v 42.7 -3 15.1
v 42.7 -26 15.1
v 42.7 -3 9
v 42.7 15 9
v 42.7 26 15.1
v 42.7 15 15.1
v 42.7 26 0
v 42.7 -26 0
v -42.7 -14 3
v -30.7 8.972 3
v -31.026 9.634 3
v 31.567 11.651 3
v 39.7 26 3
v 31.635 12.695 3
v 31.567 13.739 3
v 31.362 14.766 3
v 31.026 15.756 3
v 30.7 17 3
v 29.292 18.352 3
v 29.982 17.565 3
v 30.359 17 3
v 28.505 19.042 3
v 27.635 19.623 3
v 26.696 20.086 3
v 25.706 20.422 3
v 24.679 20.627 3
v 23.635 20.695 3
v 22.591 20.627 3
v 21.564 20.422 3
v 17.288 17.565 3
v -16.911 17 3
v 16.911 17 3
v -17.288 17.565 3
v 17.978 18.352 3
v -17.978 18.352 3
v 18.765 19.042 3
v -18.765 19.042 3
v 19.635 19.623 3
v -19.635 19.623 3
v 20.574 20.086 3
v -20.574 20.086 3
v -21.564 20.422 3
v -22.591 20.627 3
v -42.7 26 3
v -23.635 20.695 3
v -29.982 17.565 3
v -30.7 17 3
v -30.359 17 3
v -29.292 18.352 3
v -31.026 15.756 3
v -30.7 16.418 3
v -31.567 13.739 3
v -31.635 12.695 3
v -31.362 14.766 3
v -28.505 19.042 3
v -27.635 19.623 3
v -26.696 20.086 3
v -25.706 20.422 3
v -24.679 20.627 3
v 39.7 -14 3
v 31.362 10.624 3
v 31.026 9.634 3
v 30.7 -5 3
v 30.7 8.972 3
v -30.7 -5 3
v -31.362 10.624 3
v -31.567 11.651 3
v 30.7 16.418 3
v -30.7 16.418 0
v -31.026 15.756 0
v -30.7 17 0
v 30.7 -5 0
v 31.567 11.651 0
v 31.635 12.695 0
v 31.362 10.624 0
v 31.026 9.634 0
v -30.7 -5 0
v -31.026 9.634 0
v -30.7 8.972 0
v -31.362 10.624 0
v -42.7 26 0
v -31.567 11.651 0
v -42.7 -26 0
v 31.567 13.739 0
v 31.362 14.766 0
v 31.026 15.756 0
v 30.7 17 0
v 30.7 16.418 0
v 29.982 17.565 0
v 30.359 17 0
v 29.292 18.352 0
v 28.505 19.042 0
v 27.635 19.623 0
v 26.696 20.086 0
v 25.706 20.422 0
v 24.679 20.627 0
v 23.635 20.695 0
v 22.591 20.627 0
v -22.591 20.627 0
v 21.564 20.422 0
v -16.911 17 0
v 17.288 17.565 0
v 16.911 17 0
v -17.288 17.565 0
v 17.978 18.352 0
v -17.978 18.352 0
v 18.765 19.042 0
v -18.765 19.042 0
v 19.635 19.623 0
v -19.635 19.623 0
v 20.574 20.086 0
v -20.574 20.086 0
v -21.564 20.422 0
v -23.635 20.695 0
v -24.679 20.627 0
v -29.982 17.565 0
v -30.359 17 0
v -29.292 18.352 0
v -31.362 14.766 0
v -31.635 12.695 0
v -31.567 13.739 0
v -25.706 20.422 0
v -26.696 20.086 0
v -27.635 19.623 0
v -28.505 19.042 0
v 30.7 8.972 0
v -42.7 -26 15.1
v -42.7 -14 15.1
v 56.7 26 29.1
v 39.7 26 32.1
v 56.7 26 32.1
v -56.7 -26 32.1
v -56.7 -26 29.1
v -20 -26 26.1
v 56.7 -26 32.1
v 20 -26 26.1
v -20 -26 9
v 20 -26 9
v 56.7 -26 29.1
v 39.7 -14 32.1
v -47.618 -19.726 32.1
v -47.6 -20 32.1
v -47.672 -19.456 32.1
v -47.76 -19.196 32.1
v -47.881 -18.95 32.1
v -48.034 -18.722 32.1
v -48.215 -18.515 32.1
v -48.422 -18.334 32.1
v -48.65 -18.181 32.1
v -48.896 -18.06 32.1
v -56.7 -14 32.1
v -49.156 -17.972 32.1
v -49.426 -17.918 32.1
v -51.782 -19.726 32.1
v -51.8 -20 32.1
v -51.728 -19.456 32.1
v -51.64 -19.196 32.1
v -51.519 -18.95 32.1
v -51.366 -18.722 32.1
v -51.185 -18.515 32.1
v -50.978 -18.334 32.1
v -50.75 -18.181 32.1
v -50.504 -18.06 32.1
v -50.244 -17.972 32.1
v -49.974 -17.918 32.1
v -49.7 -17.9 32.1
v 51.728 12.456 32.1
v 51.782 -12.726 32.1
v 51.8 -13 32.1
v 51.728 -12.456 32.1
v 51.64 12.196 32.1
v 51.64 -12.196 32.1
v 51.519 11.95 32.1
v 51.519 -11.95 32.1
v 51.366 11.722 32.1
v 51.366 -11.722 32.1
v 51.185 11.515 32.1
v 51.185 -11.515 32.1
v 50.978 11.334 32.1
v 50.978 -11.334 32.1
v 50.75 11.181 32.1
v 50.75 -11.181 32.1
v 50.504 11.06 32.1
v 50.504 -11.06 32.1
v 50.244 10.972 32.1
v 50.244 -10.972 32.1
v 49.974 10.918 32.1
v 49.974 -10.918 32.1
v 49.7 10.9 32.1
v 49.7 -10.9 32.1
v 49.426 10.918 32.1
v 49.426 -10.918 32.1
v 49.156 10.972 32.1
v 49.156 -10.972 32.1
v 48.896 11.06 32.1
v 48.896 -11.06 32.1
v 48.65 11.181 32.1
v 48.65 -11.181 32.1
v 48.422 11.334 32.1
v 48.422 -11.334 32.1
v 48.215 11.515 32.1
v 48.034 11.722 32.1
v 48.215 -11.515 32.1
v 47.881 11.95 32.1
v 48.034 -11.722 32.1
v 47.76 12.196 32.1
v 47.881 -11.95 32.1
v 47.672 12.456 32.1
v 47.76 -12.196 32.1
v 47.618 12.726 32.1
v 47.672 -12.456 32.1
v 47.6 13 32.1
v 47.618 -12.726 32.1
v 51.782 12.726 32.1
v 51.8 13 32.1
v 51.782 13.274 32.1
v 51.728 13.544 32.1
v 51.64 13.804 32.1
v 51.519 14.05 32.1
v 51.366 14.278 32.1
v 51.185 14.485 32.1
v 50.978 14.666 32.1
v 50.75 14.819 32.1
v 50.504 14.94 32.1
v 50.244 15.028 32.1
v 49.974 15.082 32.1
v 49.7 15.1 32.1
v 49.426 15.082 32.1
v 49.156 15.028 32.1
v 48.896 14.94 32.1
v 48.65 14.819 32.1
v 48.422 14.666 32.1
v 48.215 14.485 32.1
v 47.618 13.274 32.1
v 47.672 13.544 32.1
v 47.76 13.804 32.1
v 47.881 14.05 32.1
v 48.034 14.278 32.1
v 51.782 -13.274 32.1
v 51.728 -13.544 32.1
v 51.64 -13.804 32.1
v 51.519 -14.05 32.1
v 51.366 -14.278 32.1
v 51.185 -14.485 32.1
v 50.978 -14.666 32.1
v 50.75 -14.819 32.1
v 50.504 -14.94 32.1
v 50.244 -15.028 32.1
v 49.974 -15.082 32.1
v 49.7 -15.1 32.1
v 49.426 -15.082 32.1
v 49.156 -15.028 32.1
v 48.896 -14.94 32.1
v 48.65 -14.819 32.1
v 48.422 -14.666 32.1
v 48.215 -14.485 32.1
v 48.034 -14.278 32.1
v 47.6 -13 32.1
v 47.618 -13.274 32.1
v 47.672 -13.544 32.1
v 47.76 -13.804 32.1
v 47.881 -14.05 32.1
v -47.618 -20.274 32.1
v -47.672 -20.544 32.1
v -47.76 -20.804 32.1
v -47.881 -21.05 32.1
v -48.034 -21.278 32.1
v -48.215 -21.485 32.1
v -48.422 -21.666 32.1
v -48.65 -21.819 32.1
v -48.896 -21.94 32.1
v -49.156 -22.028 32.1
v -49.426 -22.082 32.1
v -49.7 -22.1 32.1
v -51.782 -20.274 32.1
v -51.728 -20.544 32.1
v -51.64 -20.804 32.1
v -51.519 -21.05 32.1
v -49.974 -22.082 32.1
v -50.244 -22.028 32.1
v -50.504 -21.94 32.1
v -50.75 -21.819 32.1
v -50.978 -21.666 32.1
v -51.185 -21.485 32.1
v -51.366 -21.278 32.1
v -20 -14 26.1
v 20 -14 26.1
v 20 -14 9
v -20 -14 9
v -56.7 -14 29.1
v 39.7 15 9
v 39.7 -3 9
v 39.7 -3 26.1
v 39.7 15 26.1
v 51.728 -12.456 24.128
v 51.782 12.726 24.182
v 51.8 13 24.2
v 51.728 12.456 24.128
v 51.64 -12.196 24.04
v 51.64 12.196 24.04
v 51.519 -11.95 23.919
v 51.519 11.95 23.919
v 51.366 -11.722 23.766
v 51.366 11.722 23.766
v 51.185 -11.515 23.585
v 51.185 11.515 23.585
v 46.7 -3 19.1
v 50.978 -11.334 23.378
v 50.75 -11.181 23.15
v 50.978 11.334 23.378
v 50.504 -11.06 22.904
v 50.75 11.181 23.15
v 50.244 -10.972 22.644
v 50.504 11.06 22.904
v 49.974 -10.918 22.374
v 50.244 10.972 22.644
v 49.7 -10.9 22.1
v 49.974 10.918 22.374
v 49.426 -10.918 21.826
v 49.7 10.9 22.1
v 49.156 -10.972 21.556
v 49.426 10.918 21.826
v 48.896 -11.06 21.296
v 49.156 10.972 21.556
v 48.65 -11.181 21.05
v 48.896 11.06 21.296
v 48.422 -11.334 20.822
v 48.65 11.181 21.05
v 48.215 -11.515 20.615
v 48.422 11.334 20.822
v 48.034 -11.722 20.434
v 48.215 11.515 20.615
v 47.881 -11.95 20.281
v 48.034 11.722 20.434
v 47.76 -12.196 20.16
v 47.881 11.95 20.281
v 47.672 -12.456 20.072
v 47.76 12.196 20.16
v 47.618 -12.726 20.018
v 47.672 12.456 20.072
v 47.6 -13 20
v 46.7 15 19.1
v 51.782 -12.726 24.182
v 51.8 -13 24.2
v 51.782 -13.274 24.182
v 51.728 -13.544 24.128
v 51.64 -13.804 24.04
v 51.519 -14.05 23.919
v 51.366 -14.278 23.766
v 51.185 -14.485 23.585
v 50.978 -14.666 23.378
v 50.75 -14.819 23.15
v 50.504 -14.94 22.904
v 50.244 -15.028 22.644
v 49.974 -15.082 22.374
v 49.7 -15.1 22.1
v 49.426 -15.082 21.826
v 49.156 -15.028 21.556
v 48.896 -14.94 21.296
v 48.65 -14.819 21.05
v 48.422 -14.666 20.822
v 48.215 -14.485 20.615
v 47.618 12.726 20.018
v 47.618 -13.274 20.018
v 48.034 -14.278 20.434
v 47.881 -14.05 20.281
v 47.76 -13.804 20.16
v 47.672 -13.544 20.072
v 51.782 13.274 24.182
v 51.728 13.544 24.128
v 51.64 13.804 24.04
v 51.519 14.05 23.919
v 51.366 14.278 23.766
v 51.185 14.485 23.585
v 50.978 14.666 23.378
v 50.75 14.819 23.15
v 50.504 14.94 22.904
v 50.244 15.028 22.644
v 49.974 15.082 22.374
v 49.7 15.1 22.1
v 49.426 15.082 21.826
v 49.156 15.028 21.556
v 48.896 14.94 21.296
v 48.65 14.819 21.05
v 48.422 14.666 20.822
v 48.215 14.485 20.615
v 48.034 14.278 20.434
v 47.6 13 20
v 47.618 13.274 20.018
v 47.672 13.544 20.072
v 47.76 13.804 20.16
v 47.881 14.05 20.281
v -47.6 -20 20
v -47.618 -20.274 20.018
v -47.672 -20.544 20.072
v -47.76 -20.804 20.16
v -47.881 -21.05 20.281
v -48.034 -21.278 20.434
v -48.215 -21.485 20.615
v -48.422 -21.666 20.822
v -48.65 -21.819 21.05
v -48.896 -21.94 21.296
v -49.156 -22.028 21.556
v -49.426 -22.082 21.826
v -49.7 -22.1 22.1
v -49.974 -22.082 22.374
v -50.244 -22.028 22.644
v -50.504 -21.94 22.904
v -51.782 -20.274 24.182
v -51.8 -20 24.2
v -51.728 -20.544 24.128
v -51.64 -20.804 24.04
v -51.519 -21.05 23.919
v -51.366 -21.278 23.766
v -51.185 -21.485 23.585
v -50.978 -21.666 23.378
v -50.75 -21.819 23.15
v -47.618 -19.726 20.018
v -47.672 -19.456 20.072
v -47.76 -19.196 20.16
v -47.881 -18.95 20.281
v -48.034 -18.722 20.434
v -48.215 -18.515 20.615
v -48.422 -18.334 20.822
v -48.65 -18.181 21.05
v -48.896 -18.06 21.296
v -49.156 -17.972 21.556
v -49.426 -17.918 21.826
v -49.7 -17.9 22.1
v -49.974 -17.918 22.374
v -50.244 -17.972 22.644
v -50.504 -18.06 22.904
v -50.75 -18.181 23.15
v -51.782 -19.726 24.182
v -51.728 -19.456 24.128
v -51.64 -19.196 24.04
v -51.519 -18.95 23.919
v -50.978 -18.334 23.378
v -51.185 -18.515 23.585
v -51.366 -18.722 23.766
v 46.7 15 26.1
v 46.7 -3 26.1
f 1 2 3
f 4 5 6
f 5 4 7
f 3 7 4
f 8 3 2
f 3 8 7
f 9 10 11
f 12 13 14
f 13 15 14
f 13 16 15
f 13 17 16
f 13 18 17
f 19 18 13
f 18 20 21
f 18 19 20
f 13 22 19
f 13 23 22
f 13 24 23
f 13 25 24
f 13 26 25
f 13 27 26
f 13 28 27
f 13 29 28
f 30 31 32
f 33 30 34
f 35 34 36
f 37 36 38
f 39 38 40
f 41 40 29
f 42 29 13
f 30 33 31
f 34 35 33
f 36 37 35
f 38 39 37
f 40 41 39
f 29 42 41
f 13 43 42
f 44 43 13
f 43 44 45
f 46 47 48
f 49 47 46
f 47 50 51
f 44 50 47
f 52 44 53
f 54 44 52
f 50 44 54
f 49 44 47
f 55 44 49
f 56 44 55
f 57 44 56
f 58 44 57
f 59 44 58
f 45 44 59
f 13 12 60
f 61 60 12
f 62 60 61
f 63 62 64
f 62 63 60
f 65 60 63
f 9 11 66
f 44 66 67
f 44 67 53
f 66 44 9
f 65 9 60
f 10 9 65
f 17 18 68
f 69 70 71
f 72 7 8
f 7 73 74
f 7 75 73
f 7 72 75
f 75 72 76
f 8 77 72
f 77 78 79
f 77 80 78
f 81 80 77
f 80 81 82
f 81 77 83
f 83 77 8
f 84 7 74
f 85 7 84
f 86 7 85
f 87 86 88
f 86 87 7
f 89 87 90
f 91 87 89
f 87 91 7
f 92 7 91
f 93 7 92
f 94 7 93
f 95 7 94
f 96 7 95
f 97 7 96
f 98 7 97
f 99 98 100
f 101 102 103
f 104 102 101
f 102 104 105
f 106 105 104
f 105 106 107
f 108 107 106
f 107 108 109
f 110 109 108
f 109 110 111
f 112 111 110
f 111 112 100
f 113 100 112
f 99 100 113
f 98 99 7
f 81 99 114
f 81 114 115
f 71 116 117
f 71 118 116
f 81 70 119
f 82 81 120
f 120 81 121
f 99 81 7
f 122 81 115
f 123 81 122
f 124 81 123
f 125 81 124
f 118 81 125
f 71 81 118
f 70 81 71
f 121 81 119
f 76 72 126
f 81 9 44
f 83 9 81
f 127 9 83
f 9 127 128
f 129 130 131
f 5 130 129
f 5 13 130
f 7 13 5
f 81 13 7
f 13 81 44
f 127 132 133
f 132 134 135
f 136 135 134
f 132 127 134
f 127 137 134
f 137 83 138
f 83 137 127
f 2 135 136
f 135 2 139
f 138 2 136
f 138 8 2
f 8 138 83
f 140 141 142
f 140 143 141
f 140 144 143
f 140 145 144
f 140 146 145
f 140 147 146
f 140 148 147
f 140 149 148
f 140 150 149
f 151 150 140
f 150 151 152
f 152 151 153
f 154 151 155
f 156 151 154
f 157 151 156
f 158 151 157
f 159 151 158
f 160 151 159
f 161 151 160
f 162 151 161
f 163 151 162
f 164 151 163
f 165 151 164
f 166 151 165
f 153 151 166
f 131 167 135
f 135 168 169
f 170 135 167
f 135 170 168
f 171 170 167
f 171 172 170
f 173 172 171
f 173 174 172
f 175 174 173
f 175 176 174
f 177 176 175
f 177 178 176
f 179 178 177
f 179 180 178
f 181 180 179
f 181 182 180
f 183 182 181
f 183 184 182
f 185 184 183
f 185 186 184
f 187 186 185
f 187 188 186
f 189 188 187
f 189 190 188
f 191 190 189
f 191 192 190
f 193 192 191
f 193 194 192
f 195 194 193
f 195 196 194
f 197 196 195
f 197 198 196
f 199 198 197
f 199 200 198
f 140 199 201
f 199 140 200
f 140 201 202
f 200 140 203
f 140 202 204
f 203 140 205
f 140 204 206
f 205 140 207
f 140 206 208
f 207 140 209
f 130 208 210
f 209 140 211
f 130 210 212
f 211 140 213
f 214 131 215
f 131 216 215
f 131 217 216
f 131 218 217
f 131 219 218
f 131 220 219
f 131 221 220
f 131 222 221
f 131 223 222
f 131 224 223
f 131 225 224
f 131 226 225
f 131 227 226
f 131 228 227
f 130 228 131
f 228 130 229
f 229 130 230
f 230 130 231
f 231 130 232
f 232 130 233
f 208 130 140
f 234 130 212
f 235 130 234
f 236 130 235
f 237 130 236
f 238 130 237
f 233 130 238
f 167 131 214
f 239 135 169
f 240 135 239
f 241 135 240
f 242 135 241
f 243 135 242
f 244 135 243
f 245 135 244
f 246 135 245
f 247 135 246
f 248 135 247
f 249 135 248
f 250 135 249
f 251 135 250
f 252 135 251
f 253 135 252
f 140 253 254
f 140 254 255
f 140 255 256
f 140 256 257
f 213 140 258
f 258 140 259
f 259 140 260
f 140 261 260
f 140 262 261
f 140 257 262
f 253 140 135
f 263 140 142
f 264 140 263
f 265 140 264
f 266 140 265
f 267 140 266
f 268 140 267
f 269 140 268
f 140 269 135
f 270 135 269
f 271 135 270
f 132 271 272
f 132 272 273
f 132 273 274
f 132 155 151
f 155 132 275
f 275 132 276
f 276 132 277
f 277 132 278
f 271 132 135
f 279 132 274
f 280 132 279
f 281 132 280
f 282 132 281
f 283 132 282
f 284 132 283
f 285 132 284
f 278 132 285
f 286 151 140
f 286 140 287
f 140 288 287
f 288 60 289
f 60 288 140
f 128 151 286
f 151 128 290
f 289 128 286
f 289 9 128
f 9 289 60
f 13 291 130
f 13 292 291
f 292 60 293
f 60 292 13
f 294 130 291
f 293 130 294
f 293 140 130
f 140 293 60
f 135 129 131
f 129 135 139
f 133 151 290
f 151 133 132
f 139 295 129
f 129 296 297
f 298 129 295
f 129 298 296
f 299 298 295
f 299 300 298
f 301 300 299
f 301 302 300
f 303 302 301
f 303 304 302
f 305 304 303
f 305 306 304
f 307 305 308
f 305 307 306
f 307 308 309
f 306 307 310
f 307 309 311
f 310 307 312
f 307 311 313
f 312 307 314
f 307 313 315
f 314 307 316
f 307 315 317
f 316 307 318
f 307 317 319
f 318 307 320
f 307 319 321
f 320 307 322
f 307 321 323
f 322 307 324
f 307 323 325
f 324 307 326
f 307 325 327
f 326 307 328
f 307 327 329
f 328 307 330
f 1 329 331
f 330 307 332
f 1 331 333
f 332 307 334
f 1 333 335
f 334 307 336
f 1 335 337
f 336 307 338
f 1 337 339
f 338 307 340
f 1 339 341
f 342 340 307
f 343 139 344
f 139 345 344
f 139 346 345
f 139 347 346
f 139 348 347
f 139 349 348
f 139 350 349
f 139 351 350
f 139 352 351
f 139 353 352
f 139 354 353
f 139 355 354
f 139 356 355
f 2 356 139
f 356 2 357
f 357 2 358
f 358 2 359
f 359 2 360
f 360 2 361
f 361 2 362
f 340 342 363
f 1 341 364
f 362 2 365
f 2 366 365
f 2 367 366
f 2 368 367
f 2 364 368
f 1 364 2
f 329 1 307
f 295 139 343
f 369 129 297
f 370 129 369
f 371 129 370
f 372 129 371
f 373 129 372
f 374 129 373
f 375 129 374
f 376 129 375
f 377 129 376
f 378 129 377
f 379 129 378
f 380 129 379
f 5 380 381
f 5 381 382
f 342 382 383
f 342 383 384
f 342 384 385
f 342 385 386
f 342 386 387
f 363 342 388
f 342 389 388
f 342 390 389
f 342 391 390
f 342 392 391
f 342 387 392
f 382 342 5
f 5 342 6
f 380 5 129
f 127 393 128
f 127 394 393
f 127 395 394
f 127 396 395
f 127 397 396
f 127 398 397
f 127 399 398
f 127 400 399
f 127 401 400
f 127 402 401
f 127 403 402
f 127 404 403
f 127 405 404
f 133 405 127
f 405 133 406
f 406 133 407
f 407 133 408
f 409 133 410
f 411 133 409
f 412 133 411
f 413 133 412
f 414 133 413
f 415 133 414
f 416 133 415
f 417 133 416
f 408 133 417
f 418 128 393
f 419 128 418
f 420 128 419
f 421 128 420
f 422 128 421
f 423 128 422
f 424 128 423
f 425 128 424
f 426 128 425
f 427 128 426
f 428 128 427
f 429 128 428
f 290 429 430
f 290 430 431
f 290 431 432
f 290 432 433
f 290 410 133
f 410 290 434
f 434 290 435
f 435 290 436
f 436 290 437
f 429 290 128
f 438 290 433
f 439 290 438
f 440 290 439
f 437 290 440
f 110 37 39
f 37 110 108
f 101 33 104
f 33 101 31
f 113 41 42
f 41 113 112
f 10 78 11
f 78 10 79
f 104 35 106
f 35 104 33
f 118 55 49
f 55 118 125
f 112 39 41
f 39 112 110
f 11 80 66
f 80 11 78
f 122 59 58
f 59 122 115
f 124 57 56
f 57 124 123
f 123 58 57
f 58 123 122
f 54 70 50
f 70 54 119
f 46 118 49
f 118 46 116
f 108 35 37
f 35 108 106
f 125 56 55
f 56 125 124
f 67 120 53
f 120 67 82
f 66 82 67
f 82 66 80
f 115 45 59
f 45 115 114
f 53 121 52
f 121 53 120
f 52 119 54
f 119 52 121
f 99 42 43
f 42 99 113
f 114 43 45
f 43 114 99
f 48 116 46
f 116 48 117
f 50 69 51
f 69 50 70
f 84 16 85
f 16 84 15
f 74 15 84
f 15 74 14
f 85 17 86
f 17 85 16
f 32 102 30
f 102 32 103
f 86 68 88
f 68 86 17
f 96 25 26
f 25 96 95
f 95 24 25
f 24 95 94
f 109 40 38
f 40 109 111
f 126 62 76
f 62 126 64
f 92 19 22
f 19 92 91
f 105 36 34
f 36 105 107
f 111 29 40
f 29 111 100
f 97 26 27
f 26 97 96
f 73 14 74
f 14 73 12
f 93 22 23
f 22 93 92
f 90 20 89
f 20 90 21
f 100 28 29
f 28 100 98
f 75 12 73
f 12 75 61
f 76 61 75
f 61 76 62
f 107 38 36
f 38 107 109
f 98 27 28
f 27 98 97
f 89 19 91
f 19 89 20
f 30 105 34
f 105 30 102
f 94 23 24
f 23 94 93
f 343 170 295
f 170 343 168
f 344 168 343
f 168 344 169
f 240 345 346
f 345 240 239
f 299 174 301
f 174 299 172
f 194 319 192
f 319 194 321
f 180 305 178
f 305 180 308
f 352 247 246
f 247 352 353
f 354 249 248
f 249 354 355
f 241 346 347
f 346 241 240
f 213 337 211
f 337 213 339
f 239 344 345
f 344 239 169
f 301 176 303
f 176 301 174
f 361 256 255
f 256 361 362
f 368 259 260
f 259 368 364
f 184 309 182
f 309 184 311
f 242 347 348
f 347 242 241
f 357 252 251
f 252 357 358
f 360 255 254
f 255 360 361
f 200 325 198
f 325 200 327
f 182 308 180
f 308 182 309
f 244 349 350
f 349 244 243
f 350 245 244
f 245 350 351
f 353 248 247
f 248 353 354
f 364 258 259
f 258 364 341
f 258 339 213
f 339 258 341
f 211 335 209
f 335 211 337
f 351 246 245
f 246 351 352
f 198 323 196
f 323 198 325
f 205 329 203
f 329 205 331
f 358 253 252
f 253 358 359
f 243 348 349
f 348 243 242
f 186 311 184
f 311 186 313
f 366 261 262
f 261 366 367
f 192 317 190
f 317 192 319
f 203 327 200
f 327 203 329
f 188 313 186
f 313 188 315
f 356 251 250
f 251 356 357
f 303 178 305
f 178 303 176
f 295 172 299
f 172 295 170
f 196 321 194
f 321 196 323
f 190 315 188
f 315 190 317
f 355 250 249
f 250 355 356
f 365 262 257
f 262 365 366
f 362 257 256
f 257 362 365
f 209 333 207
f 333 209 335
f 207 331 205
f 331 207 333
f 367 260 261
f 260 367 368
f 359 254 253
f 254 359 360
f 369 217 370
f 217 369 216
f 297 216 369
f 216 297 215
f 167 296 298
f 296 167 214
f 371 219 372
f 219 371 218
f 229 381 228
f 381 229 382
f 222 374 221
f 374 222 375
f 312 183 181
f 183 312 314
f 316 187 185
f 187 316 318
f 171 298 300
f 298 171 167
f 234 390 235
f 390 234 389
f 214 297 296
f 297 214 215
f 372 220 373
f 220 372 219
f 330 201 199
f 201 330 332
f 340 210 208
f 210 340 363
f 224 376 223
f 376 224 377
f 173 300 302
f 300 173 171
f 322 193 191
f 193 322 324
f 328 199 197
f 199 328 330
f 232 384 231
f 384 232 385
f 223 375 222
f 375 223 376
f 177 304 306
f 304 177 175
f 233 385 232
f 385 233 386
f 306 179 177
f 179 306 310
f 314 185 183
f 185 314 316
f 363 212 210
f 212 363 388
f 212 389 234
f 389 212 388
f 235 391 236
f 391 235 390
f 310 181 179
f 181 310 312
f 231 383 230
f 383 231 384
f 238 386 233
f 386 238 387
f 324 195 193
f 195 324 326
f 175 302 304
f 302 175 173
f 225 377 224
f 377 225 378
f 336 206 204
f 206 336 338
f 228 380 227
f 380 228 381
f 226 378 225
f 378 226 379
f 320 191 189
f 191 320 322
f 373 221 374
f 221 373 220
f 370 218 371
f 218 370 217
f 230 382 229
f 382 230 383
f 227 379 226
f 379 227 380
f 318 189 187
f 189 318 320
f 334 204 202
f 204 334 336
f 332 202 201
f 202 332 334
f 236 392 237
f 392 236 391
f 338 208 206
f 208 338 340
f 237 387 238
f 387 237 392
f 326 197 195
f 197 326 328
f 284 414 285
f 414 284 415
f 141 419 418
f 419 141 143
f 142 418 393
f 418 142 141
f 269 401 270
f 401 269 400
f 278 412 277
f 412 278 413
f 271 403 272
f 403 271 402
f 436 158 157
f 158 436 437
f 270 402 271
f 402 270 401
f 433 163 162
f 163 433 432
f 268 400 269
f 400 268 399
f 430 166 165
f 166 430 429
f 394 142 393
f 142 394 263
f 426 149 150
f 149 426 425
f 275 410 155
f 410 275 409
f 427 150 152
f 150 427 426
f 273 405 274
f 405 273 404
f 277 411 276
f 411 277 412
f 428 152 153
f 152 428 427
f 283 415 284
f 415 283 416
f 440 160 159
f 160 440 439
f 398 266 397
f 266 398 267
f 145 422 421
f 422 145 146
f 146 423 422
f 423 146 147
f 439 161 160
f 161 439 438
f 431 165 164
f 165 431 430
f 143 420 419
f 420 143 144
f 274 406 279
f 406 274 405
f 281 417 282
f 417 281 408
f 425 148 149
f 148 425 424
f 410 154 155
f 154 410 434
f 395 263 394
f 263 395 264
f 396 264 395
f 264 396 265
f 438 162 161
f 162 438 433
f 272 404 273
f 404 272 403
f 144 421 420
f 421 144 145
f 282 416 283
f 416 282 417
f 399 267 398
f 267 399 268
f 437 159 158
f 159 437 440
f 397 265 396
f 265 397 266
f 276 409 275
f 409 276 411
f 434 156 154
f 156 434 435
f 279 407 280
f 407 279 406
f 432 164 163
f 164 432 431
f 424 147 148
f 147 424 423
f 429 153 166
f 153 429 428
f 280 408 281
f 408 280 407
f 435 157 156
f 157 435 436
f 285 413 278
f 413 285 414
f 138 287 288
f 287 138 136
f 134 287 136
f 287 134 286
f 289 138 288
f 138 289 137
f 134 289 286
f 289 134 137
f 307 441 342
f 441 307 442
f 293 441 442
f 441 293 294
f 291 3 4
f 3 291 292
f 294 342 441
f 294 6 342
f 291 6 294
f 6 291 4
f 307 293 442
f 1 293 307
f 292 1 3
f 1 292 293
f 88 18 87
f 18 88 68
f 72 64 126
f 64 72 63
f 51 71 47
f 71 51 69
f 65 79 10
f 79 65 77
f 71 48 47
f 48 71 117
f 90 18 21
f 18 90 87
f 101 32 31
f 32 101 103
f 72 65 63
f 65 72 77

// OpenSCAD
// file: ../../lib/end_cup.scad
/* Reusable under-desk end cup with a single side wall.

   Print TWO, but they are MIRRORED, not identical. Print one, then mirror it
   along Y in the slicer for the second. Rotating instead of mirroring would put
   the side wall on the wrong face.

   Use this instead of lib/end_bracket.scad when a device has ports spread along
   one long face right out to its corners. An end bracket runs side walls in
   from each end along BOTH long faces and would bury them. This has a wall on
   the clear face only, so nothing ever crosses the port face.

   The end wall is deliberately thick (end_wall_d) rather than a 3 mm sheet,
   because with one side wall gone it is the only thing the -X flange has to
   stand on.

   Flanges are asymmetric by necessity: the +X one runs the full cup length over
   its side wall and takes two screws; the -X one exists only over the end wall
   and takes one. Three screws per cup, spread over the footprint rather than
   all on one edge.

   Usage:
       use <../lib/end_cup.scad>
       end_cup(device_w = 79.0, device_h = 28.7);
*/

module end_cup(
    device_w,
    device_h,

    cup_d      = 40.0,
    end_wall_d = 12.0,

    fit_clear = 0.4,
    head_gap  = 0.4,

    wall    = 3.0,
    floor_t = 3.0,
    rim     = 9.0,

    flange_t = 3.0,
    flange_w = 14.0,
    screw_d  = 4.2,

    win_border = 6.0,
    end_win    = 40.0,
    side_win   = 18.0,

    button_from_end  = undef,
    button_from_edge = undef,
    button_relief_d  = 16.0
) {
    pocket_w = device_w + fit_clear;
    wall_h   = device_h + head_gap;
    total_h  = floor_t + wall_h;
    outer_w  = pocket_w + 2 * wall;
    outer_d  = end_wall_d + cup_d;

    x_wall = pocket_w / 2;          // inner face of the side wall
    y0     = -outer_d / 2;          // outer face of the end wall

    eps = 0.01;
    has_button = button_from_end != undef && button_from_edge != undef;

    module floor_slab() {
        translate([-outer_w / 2, y0, 0])
            cube([outer_w, outer_d, floor_t]);
    }

    module end_wall() {
        translate([-outer_w / 2, y0, 0])
            cube([outer_w, end_wall_d, total_h]);
    }

    /* +X only. The -X long face is left completely open for the ports. */
    module side_wall() {
        translate([x_wall, y0, 0])
            cube([outer_w / 2 - x_wall, outer_d, total_h]);
    }

    module end_window() {
        h = wall_h - 2 * win_border;
        translate([0, y0 + end_wall_d / 2, floor_t + wall_h / 2])
            cube([end_win, end_wall_d + 2, h], center = true);
    }

    module side_window() {
        h = wall_h - 2 * win_border;
        translate([outer_w / 2, y0 + end_wall_d + cup_d / 2,
                   floor_t + wall_h / 2])
            cube([2 * wall + 2, side_win, h], center = true);
    }

    module floor_window() {
        w = pocket_w - 2 * rim;
        d = cup_d - 2 * rim;
        translate([0, y0 + end_wall_d + rim + d / 2, floor_t / 2])
            cube([w, d, floor_t + 2], center = true);
    }

    module button_reliefs() {
        y = y0 + end_wall_d + button_from_end;
        for (sx = [-1, 1])
            translate([sx * (device_w / 2 - button_from_edge), y, floor_t / 2])
                cylinder(d = button_relief_d, h = floor_t + 2, center = true);
    }

    /* Full-length flange over the side wall, two screws. */
    module flange_side() {
        translate([outer_w / 2 + flange_w / 2, y0 + outer_d / 2,
                   total_h - flange_t / 2])
            cube([flange_w, outer_d, flange_t], center = true);
    }

    /* Stub flange over the end wall only - there is no side wall under it. */
    module flange_end() {
        translate([-(outer_w / 2 + flange_w / 2), y0 + end_wall_d / 2,
                   total_h - flange_t / 2])
            cube([flange_w, end_wall_d, flange_t], center = true);
    }

    /* Continuous, never discrete. A flange is anchored on one edge only, so
       gaps between gussets are cantilevers rather than bridges. */
    module chamfer(sx, y_centre, length) {
        translate([sx * outer_w / 2, y_centre, total_h - flange_t])
            rotate([90, 0, 0])
                linear_extrude(length, center = true)
                    polygon([[0, 0], [sx * flange_w, 0], [0, -flange_w]]);
    }

    module screws() {
        for (sy = [0.25, 0.75])
            translate([outer_w / 2 + flange_w / 2, y0 + sy * outer_d,
                       total_h / 2])
                cylinder(d = screw_d, h = total_h + 2, center = true);
        translate([-(outer_w / 2 + flange_w / 2), y0 + end_wall_d / 2,
                   total_h / 2])
            cylinder(d = screw_d, h = total_h + 2, center = true);
    }

    difference() {
        union() {
            floor_slab();
            end_wall();
            side_wall();
            flange_side();
            flange_end();
            chamfer(1, y0 + outer_d / 2, outer_d);
            chamfer(-1, y0 + end_wall_d / 2, end_wall_d);
        }
        end_window();
        side_window();
        floor_window();
        if (has_button) button_reliefs();
        screws();
    }
}
// main file
/* Lindy 43202 KVM dock - under-desk end cup. Print TWO, MIRRORED.

   Print one, then mirror it along Y in the slicer for the second. Rotating
   would put the side wall on the port face.

   Dock is 185 x 79 x 28.7 mm (Lindy 43202 official spec). All ports run along
   one long face, out to both corners - DC 20V at one end, PD at the other - so
   an end bracket with side walls on both long faces would bury them. This has a
   wall on the clear long face only.

   Mounts UPSIDE DOWN so the POWER/SWITCH button faces the floor. Button is
   11.41 mm across, 20.99 mm from the short end and 10.16 mm from the long edge
   to its near side, hence centre 26.695 / 15.865. Without the relief it lands
   on the floor and the dock rests on it, holding it pressed.
*/

use <../../lib/end_cup.scad>

$fn = 48;

end_cup(
    device_w = 79.00,
    device_h = 28.70,

    button_from_end  = 26.695,
    button_from_edge = 15.865
);
